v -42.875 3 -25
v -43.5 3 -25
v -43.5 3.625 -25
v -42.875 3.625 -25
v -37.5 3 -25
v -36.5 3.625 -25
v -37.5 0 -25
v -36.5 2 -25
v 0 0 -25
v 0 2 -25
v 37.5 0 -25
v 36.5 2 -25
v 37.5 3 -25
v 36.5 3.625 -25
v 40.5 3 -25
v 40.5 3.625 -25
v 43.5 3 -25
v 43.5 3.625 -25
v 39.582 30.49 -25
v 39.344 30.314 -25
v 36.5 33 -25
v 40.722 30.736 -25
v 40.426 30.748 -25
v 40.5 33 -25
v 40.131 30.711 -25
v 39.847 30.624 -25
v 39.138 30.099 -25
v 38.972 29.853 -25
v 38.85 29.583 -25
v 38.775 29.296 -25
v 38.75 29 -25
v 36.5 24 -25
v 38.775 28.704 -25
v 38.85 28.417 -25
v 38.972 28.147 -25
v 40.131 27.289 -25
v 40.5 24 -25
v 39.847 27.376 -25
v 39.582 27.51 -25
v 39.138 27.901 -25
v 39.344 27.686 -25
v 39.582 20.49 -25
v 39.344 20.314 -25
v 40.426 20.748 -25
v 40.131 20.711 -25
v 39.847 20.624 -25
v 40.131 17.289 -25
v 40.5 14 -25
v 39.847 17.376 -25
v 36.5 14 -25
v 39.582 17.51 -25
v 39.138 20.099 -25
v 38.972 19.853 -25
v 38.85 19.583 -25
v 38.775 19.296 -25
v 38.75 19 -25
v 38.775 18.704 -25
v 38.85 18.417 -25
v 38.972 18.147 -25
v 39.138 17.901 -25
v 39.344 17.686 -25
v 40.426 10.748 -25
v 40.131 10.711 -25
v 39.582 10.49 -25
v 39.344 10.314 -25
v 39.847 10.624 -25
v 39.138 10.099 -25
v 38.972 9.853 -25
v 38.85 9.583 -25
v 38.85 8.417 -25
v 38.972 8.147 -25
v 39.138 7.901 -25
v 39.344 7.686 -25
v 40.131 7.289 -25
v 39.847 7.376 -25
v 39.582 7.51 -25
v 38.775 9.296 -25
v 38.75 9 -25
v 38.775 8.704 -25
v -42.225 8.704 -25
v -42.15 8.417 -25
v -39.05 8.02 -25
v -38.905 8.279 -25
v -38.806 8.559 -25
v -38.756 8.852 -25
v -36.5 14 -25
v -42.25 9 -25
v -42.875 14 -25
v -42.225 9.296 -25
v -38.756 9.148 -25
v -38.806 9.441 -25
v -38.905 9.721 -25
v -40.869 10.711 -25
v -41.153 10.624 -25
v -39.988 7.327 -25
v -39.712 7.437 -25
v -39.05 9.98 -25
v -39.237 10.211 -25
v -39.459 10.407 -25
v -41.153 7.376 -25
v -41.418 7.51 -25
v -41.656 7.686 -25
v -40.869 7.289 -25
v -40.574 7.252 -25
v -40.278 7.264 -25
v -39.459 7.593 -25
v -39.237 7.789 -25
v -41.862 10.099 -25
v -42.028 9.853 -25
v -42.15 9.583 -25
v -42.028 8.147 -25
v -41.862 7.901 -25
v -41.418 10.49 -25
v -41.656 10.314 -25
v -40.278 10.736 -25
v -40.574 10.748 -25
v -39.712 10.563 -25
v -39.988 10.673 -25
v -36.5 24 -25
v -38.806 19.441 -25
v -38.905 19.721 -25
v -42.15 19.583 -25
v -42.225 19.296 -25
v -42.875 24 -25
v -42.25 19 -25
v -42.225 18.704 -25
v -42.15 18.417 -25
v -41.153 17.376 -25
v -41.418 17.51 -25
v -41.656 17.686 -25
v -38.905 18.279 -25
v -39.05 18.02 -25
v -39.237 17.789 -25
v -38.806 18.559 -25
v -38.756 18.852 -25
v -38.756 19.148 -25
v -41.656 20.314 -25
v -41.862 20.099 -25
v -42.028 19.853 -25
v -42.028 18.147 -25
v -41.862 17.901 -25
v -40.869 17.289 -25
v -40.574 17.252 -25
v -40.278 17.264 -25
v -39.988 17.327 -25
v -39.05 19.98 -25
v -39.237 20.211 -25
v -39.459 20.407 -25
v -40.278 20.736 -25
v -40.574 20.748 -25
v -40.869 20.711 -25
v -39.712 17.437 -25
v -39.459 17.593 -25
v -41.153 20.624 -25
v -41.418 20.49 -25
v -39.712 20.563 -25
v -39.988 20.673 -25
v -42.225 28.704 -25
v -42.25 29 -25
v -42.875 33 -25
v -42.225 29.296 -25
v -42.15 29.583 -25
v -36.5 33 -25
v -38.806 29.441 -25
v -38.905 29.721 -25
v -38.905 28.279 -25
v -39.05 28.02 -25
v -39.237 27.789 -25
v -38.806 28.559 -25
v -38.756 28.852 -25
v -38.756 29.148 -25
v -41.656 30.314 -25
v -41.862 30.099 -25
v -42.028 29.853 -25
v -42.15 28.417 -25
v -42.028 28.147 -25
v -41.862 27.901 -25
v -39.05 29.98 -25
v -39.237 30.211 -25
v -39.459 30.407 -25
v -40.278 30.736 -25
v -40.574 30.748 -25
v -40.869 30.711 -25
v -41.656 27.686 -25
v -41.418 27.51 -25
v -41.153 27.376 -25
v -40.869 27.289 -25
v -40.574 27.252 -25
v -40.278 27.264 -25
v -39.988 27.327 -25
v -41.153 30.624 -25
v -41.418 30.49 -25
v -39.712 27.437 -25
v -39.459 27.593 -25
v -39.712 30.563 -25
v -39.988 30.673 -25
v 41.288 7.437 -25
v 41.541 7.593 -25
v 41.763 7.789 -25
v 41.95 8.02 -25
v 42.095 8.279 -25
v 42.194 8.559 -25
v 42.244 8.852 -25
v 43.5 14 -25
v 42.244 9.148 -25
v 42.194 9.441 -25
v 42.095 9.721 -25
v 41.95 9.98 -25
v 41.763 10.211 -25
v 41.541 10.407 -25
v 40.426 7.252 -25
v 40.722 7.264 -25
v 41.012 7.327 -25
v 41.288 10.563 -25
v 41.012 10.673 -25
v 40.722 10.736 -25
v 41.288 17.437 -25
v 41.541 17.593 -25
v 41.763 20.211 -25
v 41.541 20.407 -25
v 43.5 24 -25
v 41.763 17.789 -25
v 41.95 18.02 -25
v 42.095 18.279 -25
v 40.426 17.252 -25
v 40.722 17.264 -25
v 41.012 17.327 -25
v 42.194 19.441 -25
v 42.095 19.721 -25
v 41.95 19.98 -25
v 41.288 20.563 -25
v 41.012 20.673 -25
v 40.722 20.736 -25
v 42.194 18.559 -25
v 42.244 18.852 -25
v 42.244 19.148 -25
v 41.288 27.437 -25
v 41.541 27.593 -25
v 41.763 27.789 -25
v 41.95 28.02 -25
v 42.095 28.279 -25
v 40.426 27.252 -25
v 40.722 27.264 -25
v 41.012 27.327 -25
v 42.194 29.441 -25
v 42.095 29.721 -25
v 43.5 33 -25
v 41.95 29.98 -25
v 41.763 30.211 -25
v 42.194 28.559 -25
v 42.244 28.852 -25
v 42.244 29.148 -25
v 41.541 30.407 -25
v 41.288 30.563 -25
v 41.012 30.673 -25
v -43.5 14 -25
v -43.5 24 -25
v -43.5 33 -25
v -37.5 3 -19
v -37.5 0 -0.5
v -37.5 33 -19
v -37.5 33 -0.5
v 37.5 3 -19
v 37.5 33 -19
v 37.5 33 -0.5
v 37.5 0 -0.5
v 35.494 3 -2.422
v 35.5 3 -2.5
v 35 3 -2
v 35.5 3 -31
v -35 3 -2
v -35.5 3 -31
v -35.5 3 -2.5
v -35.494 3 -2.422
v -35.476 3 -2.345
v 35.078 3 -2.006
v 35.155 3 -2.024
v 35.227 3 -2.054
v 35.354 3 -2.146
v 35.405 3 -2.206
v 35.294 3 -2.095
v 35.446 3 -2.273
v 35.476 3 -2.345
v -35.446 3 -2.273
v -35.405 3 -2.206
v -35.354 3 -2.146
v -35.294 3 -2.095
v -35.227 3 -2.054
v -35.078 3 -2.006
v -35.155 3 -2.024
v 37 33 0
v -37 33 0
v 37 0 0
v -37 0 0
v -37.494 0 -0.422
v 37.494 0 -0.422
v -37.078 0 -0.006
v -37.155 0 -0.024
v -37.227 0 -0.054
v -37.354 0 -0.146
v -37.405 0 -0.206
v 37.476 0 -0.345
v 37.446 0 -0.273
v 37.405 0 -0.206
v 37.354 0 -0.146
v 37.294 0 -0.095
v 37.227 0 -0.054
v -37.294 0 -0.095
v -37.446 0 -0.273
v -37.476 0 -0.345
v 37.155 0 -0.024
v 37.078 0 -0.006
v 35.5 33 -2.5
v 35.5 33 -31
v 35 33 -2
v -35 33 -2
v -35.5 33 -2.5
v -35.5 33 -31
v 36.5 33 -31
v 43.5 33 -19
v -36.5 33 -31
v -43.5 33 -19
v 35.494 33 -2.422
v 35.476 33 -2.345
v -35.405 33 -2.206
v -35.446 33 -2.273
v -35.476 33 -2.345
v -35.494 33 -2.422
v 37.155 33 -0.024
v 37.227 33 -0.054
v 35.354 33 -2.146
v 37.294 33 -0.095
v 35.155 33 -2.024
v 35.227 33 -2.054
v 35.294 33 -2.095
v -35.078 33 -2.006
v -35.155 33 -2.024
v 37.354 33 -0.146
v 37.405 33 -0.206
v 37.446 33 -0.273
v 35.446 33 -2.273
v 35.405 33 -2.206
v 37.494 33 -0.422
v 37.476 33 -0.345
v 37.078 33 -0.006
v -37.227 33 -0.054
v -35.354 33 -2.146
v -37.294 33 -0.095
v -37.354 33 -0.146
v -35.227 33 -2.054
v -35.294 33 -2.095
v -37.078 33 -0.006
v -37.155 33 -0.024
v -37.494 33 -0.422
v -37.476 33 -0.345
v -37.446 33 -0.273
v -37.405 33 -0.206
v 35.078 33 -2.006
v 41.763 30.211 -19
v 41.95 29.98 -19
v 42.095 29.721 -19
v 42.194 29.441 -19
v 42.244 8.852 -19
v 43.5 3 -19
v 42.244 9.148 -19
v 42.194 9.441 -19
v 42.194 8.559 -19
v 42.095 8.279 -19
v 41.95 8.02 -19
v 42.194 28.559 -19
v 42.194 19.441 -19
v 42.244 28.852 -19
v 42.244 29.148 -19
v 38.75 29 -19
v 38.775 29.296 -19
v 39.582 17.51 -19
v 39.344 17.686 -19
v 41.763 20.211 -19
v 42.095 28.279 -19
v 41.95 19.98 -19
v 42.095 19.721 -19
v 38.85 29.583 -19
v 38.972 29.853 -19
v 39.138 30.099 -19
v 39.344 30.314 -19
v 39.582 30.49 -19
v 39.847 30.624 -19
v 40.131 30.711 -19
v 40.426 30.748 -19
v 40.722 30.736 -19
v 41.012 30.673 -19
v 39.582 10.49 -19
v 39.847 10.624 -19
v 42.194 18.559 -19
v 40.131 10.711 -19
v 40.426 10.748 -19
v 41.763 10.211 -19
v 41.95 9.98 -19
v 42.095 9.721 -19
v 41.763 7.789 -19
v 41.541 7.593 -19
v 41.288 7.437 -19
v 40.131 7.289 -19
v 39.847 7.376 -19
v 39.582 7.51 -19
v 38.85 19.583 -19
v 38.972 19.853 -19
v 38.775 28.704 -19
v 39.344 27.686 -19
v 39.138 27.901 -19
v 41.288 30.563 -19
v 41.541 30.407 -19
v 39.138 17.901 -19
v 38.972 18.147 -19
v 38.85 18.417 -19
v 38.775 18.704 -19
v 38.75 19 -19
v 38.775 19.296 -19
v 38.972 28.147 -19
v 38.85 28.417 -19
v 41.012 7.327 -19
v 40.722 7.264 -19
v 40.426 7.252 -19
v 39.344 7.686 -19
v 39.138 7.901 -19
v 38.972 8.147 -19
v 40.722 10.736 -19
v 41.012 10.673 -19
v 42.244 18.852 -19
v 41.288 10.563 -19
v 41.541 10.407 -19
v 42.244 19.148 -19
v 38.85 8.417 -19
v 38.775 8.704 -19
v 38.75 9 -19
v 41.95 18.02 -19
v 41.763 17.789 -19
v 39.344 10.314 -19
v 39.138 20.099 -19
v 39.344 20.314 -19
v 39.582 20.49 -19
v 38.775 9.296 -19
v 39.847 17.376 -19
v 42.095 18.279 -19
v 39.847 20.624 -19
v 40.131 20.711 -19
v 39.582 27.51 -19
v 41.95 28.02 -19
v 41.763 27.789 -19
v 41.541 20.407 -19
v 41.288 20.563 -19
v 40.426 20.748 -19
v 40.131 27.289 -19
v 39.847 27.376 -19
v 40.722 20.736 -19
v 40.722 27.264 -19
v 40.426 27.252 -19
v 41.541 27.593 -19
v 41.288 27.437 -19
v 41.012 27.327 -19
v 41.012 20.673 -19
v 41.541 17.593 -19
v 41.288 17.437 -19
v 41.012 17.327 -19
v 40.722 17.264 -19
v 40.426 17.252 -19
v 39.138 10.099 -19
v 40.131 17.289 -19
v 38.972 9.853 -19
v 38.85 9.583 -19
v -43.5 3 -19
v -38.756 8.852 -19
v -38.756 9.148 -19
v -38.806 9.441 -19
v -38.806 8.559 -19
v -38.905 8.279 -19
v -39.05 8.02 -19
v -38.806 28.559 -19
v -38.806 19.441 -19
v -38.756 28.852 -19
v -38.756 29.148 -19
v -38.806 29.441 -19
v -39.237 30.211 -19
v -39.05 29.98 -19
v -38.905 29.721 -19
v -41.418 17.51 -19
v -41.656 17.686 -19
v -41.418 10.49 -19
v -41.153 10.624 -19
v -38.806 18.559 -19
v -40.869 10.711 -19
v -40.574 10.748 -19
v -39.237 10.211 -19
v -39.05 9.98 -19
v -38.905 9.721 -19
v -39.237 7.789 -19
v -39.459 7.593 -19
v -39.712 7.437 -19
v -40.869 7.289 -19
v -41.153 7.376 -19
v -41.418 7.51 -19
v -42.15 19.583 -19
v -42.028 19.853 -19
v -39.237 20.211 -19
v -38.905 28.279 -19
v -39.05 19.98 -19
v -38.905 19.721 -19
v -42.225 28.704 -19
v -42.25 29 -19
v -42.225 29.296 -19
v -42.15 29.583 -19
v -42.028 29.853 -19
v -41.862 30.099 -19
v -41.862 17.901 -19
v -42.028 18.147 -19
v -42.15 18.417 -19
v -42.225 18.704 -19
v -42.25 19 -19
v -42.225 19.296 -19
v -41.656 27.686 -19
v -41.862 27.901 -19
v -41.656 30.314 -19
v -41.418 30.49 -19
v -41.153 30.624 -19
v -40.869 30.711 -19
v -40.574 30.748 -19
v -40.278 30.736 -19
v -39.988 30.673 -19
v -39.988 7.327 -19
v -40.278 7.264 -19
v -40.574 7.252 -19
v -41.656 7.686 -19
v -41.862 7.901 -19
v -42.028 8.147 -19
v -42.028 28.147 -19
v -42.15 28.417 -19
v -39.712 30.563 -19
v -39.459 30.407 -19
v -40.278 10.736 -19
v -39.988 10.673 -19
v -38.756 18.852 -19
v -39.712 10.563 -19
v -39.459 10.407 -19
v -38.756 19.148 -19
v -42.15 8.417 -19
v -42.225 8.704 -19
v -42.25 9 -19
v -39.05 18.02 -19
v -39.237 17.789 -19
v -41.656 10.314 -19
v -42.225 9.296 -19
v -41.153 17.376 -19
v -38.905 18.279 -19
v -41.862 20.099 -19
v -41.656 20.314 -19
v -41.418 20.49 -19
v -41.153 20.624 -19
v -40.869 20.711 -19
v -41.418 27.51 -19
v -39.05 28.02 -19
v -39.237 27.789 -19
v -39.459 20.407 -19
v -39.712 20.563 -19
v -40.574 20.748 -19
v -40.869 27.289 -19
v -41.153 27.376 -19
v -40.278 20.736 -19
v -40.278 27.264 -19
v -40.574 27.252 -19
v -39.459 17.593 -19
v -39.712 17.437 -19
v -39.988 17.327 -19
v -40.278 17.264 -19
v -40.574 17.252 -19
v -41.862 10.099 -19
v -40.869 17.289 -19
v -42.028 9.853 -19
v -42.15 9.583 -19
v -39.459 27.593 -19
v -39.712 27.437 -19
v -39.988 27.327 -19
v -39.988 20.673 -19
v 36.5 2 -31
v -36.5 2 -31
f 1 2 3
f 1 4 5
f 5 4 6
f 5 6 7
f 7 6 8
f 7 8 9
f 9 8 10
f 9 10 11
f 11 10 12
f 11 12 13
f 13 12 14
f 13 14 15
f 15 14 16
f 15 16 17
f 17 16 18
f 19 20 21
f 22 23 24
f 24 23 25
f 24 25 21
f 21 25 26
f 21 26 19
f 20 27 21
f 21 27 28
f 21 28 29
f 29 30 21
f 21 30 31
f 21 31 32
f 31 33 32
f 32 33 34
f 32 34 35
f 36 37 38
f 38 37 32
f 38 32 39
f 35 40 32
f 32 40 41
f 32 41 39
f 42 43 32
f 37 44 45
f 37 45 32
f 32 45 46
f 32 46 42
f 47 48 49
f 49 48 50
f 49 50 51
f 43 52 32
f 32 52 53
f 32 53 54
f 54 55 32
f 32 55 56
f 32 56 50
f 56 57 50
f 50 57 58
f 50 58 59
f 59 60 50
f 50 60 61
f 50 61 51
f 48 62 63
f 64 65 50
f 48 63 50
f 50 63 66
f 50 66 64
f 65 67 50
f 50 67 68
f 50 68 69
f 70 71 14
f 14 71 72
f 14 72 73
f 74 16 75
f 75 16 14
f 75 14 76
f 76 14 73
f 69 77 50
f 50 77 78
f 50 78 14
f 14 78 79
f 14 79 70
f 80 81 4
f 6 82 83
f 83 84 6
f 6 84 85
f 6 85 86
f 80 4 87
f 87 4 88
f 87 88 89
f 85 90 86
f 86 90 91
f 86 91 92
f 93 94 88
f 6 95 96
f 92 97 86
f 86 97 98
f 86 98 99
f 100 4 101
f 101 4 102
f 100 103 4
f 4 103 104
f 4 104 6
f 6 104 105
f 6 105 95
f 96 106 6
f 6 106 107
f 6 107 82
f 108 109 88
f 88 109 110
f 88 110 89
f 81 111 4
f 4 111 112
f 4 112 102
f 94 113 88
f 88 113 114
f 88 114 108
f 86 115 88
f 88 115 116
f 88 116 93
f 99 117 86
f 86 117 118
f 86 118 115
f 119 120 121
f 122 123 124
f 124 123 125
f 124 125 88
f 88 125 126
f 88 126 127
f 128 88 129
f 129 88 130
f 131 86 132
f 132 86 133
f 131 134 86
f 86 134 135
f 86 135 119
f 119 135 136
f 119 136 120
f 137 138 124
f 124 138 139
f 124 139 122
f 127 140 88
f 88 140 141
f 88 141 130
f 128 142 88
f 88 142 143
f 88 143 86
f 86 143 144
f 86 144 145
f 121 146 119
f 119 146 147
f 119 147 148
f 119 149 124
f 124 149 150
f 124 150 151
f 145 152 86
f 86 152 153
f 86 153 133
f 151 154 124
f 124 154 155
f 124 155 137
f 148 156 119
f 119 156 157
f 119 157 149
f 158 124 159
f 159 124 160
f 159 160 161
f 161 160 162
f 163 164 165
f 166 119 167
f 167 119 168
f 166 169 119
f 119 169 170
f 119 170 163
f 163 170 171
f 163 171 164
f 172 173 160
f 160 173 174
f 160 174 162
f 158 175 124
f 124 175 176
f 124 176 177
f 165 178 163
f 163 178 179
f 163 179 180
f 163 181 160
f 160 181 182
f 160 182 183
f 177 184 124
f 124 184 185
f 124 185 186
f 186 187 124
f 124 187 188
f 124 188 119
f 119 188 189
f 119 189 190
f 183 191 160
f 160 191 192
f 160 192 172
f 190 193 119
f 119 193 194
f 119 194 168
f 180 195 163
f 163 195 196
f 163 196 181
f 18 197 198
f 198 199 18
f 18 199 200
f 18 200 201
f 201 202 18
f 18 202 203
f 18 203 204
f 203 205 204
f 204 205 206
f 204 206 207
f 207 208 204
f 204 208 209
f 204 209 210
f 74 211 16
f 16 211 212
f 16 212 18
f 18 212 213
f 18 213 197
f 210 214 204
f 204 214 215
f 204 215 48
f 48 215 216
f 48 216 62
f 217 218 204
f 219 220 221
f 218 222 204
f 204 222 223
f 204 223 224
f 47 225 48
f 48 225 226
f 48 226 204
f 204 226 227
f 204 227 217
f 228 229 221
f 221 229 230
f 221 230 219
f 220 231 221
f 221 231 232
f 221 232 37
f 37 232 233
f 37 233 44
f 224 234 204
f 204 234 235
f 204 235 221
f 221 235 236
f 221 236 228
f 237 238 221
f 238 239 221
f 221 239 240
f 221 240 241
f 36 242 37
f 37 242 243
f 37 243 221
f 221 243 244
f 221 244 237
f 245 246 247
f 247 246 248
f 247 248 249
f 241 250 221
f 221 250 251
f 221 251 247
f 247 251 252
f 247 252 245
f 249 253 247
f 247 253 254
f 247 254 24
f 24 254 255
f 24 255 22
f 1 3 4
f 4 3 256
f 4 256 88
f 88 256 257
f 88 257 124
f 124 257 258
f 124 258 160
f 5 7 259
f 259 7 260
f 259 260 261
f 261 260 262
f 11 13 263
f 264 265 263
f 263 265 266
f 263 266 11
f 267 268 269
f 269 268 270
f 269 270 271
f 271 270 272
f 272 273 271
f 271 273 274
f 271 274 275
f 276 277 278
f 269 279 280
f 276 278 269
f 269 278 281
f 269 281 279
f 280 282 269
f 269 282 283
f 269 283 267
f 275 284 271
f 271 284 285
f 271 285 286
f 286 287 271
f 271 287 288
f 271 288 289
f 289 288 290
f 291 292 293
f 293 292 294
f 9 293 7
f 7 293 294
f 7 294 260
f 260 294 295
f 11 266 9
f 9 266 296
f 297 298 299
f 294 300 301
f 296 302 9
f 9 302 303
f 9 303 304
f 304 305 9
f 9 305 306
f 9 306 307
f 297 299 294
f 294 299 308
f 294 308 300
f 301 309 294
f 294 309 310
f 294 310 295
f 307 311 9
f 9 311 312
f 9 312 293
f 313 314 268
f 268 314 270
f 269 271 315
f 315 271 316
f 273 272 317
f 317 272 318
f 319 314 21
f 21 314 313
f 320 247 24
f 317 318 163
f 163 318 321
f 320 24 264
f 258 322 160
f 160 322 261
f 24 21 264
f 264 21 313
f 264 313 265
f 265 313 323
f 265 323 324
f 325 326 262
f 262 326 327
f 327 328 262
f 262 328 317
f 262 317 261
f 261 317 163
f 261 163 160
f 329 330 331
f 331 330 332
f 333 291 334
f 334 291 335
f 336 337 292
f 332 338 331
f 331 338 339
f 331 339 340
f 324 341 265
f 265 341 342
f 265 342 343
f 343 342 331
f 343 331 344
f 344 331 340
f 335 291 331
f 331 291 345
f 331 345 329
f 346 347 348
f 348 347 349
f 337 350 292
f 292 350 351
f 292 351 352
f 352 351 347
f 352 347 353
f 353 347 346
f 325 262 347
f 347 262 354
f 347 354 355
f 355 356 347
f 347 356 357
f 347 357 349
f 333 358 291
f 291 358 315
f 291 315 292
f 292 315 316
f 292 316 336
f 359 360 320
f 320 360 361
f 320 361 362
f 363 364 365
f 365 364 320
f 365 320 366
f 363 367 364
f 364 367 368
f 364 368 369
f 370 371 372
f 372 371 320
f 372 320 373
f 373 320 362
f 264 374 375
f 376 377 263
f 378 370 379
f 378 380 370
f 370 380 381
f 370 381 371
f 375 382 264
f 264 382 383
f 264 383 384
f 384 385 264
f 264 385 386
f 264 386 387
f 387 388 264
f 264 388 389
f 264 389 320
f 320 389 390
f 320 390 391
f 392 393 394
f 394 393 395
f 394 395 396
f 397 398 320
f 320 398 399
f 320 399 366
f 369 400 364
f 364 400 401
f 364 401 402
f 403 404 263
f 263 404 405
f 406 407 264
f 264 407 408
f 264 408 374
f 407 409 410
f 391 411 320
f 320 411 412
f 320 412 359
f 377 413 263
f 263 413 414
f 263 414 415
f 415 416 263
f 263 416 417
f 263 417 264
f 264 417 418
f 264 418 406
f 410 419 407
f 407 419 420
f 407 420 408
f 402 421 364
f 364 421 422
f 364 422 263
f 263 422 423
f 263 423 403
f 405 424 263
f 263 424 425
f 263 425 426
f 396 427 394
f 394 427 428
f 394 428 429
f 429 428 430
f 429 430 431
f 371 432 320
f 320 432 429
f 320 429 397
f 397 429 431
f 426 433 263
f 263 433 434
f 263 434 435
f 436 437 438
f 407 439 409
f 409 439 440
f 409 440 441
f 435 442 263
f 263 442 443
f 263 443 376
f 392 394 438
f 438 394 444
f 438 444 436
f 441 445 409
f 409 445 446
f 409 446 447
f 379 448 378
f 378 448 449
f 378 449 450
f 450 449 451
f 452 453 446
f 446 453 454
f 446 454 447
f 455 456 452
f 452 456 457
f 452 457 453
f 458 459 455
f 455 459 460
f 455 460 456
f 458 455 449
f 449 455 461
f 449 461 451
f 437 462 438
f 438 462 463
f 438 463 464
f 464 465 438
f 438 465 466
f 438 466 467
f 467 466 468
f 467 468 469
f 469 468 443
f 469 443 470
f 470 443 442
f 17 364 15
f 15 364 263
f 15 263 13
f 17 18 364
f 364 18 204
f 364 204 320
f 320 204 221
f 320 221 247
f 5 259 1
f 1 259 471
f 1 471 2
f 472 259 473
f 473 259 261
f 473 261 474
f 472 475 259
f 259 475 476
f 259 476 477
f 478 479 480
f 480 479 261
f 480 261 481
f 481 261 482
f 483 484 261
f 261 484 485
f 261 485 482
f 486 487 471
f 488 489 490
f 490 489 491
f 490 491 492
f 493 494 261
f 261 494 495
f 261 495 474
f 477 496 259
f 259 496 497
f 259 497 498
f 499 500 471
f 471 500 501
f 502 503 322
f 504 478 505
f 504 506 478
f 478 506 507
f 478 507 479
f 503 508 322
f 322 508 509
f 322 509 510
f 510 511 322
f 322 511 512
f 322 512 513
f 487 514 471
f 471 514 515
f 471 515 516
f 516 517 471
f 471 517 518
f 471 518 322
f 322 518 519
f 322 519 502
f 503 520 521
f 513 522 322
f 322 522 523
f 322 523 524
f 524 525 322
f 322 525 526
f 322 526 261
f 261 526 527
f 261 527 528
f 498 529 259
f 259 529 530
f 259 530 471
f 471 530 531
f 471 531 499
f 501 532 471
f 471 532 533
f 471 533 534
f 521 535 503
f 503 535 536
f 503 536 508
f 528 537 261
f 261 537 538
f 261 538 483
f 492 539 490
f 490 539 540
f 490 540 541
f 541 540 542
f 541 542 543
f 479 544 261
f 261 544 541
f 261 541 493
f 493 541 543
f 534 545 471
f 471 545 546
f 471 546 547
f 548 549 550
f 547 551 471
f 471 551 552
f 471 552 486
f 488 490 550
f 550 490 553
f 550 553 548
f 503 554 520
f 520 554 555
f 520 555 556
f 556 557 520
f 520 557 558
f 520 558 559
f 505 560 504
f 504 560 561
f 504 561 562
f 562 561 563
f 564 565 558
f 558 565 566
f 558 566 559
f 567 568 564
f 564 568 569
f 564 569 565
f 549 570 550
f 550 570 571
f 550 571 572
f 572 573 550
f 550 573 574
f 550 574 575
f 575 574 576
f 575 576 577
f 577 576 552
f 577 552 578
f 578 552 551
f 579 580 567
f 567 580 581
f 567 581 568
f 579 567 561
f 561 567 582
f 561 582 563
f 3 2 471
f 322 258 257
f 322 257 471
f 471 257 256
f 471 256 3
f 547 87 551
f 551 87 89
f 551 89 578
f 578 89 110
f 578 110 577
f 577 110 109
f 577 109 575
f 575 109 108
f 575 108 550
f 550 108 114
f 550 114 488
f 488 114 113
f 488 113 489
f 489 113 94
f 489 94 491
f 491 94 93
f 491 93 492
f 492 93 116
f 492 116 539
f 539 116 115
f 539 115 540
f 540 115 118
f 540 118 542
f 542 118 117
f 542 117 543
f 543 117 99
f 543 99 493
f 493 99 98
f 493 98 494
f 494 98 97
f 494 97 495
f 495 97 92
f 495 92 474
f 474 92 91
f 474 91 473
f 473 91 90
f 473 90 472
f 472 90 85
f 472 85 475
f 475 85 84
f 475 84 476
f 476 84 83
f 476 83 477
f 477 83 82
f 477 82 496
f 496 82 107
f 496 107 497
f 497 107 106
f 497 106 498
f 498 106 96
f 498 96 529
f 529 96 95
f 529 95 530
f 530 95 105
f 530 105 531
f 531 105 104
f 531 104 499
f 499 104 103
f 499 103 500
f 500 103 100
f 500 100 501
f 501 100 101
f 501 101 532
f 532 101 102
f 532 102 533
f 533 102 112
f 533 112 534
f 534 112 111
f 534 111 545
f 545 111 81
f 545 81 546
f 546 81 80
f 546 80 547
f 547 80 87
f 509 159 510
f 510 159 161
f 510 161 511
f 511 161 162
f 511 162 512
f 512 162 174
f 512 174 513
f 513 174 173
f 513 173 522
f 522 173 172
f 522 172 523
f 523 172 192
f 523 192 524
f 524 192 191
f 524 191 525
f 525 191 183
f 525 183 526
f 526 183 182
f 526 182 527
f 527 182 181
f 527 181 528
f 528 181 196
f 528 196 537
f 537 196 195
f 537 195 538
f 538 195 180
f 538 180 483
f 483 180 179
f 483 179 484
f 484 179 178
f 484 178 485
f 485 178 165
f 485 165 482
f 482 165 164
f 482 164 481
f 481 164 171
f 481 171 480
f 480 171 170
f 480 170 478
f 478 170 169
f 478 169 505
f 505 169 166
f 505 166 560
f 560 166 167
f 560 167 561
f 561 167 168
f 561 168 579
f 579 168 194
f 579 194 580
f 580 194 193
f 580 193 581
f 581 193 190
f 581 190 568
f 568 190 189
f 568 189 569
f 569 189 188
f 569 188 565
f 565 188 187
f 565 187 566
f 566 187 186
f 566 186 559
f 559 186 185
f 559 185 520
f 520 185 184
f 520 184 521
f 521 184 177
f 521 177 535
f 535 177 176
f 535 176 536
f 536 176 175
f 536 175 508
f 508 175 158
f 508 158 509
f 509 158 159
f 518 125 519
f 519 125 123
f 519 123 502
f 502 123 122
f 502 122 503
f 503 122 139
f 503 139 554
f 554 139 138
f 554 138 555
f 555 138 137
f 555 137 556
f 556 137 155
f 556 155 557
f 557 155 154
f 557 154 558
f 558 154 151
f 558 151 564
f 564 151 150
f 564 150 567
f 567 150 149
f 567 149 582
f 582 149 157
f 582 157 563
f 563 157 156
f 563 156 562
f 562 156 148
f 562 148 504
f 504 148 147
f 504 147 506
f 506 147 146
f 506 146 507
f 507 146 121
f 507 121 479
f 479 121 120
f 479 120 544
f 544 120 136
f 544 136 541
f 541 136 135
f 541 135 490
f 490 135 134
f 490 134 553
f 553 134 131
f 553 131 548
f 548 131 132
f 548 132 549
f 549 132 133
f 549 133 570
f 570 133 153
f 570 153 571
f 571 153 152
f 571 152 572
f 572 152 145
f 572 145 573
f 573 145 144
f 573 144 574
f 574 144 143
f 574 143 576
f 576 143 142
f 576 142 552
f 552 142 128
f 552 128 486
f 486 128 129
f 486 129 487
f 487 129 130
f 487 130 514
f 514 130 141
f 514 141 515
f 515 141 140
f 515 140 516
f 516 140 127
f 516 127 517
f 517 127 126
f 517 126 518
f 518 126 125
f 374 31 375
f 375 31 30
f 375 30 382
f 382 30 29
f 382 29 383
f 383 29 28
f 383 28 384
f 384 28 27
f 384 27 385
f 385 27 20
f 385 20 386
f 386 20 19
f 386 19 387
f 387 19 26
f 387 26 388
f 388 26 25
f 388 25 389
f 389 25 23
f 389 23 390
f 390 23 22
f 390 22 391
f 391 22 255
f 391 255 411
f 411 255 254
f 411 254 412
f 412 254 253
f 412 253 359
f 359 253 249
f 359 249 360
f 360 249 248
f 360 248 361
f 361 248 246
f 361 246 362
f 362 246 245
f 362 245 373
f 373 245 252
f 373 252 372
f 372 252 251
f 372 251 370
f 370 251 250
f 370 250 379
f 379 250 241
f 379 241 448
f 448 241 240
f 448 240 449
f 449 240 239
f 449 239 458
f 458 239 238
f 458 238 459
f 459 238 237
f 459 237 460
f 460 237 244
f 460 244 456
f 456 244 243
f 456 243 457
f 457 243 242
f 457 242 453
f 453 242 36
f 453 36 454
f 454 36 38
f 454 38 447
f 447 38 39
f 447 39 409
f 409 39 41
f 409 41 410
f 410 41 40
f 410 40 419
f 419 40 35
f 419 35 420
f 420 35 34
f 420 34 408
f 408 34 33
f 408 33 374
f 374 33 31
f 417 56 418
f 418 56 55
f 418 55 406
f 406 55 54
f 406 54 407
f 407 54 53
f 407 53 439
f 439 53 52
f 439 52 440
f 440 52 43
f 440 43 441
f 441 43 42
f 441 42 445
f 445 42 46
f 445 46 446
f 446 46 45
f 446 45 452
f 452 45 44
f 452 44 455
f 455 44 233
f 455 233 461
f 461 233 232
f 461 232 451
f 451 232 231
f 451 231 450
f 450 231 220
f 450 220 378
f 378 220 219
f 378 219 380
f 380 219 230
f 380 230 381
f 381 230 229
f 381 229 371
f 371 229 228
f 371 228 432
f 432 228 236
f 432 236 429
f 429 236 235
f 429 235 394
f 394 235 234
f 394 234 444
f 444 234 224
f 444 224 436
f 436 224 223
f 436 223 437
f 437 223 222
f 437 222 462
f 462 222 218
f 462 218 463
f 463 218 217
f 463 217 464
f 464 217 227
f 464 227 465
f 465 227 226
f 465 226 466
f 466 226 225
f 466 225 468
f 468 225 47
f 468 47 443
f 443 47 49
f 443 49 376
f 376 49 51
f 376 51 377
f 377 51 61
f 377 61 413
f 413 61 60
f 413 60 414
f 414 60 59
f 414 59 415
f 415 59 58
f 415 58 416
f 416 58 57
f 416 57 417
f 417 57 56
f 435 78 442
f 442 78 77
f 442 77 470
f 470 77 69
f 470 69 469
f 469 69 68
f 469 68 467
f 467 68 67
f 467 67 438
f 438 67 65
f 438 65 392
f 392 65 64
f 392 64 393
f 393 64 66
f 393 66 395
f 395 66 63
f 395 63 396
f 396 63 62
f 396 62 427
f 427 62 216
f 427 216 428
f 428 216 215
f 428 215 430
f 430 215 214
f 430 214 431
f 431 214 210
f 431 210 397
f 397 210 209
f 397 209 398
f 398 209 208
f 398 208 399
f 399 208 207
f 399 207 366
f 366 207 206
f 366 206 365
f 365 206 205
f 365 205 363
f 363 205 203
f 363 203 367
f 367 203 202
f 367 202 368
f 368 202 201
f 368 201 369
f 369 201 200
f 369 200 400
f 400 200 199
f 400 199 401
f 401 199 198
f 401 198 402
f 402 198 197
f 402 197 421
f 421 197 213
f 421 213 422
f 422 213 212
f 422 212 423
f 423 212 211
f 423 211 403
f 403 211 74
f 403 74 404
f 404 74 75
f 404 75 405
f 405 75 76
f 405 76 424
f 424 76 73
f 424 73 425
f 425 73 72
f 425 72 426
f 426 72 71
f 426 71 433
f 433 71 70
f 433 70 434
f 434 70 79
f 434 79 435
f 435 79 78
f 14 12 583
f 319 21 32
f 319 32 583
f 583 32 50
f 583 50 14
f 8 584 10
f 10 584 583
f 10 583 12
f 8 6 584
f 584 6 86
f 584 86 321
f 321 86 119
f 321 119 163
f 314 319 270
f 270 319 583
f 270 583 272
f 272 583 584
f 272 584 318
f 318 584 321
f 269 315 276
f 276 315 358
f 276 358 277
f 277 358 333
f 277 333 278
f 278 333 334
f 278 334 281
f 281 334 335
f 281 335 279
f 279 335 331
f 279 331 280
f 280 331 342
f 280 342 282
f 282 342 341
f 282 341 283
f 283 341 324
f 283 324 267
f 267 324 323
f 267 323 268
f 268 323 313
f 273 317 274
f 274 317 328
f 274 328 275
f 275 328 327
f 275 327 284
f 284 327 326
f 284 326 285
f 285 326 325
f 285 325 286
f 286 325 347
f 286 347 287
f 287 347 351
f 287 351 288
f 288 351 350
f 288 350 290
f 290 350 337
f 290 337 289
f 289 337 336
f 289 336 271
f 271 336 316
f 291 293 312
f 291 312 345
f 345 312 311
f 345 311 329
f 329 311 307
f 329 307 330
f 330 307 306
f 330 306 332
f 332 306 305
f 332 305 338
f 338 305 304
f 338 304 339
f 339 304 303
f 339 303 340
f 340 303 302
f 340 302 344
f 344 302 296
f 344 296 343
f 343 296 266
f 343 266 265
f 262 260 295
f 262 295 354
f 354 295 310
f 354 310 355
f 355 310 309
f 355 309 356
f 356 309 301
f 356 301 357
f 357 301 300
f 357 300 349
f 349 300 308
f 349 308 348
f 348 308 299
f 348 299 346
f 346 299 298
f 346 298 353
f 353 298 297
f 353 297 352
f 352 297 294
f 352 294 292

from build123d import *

# Parameters (mm, degrees)
SKETCH2_W           = 75
SKETCH2_H           = 25
BOSS_EXTRUDE1_DEPTH = 3
BOSS_EXTRUDE2_DEPTH = 30
SKETCH4_W           = 6
SKETCH4_H           = 30
BOSS_EXTRUDE3_DEPTH = 6
SKETCH5_W           = 6
SKETCH5_H           = 30
BOSS_EXTRUDE4_DEPTH = 6
SKETCH6_R           = 1.75
CUT_EXTRUDE1_DEPTH  = 16
BOSS_EXTRUDE5_DEPTH = 6
FILLET1_R           = 0.5
FILLET2_R           = 0.5


with BuildPart() as part:
    # Sketch2 → Boss-Extrude1 (new body)
    with BuildSketch(Plane(origin=(0, 0, 0), x_dir=(1, 0, 0), z_dir=(0, 1, 0))):
        with Locations((0, 12.5)):
            Rectangle(SKETCH2_W, SKETCH2_H)
    extrude(amount=BOSS_EXTRUDE1_DEPTH)

    # Sketch3 → Boss-Extrude2 (add)
    with BuildSketch(Plane(origin=(0, 3, 0), x_dir=(1, 0, 0), z_dir=(0, 1, 0))):
        Polygon((-35.5, 25), (-35.5, 2), (35.5, 2), (35.5, 25), (37.5, 25), (37.5, 0), (-37.5, 0), (-37.5, 25), align=None)
    extrude(amount=BOSS_EXTRUDE2_DEPTH)

    # Sketch4 → Boss-Extrude3 (add)
    with BuildSketch(Plane(origin=(37.5, 0, 0), x_dir=(0, 0, -1), z_dir=(1, 0, 0))):
        with Locations((22, 18)):
            Rectangle(SKETCH4_W, SKETCH4_H)
    extrude(amount=BOSS_EXTRUDE3_DEPTH)

    # Sketch5 → Boss-Extrude4 (add)
    with BuildSketch(Plane.ZY.offset(37.5)):
        with Locations((-22, 18)):
            Rectangle(SKETCH5_W, SKETCH5_H)
    extrude(amount=BOSS_EXTRUDE4_DEPTH)

    # Sketch6 → Cut-Extrude1 (cut)
    with BuildSketch(Plane(origin=(0, 0, -25), x_dir=(-1, 0, 0), z_dir=(0, 0, -1))):
        with Locations((-40.5, 29)):
            Circle(SKETCH6_R)
        with Locations((40.5, 29)):
            Circle(SKETCH6_R)
        with Locations((-40.5, 19)):
            Circle(SKETCH6_R)
        with Locations((-40.5, 9)):
            Circle(SKETCH6_R)
        with Locations((40.5, 19)):
            Circle(SKETCH6_R)
        with Locations((40.5, 9)):
            Circle(SKETCH6_R)
    extrude(amount=-CUT_EXTRUDE1_DEPTH, mode=Mode.SUBTRACT)

    # Sketch7 → Boss-Extrude5 (add)
    with BuildSketch(Plane(origin=(0, 0, -25), x_dir=(-1, 0, 0), z_dir=(0, 0, -1))):
        Polygon((35.5, 33), (36.5, 33), (36.5, 2), (-36.5, 2), (-36.5, 33), (-35.5, 33), (-35.5, 3), (35.5, 3), align=None)
    extrude(amount=BOSS_EXTRUDE5_DEPTH)

    # Fillet1
    fillet1_edges = [part.edges().sort_by_distance(p)[0] for p in [
        (35.5, 18, -2),
        (-35.5, 18, -2),
    ]]
    fillet(fillet1_edges, radius=FILLET1_R)

    # Fillet2
    fillet2_edges = [part.edges().sort_by_distance(p)[0] for p in [
        (37.5, 16.5, 0),
        (-37.5, 16.5, 0),
    ]]
    fillet(fillet2_edges, radius=FILLET2_R)


solid = part.part
